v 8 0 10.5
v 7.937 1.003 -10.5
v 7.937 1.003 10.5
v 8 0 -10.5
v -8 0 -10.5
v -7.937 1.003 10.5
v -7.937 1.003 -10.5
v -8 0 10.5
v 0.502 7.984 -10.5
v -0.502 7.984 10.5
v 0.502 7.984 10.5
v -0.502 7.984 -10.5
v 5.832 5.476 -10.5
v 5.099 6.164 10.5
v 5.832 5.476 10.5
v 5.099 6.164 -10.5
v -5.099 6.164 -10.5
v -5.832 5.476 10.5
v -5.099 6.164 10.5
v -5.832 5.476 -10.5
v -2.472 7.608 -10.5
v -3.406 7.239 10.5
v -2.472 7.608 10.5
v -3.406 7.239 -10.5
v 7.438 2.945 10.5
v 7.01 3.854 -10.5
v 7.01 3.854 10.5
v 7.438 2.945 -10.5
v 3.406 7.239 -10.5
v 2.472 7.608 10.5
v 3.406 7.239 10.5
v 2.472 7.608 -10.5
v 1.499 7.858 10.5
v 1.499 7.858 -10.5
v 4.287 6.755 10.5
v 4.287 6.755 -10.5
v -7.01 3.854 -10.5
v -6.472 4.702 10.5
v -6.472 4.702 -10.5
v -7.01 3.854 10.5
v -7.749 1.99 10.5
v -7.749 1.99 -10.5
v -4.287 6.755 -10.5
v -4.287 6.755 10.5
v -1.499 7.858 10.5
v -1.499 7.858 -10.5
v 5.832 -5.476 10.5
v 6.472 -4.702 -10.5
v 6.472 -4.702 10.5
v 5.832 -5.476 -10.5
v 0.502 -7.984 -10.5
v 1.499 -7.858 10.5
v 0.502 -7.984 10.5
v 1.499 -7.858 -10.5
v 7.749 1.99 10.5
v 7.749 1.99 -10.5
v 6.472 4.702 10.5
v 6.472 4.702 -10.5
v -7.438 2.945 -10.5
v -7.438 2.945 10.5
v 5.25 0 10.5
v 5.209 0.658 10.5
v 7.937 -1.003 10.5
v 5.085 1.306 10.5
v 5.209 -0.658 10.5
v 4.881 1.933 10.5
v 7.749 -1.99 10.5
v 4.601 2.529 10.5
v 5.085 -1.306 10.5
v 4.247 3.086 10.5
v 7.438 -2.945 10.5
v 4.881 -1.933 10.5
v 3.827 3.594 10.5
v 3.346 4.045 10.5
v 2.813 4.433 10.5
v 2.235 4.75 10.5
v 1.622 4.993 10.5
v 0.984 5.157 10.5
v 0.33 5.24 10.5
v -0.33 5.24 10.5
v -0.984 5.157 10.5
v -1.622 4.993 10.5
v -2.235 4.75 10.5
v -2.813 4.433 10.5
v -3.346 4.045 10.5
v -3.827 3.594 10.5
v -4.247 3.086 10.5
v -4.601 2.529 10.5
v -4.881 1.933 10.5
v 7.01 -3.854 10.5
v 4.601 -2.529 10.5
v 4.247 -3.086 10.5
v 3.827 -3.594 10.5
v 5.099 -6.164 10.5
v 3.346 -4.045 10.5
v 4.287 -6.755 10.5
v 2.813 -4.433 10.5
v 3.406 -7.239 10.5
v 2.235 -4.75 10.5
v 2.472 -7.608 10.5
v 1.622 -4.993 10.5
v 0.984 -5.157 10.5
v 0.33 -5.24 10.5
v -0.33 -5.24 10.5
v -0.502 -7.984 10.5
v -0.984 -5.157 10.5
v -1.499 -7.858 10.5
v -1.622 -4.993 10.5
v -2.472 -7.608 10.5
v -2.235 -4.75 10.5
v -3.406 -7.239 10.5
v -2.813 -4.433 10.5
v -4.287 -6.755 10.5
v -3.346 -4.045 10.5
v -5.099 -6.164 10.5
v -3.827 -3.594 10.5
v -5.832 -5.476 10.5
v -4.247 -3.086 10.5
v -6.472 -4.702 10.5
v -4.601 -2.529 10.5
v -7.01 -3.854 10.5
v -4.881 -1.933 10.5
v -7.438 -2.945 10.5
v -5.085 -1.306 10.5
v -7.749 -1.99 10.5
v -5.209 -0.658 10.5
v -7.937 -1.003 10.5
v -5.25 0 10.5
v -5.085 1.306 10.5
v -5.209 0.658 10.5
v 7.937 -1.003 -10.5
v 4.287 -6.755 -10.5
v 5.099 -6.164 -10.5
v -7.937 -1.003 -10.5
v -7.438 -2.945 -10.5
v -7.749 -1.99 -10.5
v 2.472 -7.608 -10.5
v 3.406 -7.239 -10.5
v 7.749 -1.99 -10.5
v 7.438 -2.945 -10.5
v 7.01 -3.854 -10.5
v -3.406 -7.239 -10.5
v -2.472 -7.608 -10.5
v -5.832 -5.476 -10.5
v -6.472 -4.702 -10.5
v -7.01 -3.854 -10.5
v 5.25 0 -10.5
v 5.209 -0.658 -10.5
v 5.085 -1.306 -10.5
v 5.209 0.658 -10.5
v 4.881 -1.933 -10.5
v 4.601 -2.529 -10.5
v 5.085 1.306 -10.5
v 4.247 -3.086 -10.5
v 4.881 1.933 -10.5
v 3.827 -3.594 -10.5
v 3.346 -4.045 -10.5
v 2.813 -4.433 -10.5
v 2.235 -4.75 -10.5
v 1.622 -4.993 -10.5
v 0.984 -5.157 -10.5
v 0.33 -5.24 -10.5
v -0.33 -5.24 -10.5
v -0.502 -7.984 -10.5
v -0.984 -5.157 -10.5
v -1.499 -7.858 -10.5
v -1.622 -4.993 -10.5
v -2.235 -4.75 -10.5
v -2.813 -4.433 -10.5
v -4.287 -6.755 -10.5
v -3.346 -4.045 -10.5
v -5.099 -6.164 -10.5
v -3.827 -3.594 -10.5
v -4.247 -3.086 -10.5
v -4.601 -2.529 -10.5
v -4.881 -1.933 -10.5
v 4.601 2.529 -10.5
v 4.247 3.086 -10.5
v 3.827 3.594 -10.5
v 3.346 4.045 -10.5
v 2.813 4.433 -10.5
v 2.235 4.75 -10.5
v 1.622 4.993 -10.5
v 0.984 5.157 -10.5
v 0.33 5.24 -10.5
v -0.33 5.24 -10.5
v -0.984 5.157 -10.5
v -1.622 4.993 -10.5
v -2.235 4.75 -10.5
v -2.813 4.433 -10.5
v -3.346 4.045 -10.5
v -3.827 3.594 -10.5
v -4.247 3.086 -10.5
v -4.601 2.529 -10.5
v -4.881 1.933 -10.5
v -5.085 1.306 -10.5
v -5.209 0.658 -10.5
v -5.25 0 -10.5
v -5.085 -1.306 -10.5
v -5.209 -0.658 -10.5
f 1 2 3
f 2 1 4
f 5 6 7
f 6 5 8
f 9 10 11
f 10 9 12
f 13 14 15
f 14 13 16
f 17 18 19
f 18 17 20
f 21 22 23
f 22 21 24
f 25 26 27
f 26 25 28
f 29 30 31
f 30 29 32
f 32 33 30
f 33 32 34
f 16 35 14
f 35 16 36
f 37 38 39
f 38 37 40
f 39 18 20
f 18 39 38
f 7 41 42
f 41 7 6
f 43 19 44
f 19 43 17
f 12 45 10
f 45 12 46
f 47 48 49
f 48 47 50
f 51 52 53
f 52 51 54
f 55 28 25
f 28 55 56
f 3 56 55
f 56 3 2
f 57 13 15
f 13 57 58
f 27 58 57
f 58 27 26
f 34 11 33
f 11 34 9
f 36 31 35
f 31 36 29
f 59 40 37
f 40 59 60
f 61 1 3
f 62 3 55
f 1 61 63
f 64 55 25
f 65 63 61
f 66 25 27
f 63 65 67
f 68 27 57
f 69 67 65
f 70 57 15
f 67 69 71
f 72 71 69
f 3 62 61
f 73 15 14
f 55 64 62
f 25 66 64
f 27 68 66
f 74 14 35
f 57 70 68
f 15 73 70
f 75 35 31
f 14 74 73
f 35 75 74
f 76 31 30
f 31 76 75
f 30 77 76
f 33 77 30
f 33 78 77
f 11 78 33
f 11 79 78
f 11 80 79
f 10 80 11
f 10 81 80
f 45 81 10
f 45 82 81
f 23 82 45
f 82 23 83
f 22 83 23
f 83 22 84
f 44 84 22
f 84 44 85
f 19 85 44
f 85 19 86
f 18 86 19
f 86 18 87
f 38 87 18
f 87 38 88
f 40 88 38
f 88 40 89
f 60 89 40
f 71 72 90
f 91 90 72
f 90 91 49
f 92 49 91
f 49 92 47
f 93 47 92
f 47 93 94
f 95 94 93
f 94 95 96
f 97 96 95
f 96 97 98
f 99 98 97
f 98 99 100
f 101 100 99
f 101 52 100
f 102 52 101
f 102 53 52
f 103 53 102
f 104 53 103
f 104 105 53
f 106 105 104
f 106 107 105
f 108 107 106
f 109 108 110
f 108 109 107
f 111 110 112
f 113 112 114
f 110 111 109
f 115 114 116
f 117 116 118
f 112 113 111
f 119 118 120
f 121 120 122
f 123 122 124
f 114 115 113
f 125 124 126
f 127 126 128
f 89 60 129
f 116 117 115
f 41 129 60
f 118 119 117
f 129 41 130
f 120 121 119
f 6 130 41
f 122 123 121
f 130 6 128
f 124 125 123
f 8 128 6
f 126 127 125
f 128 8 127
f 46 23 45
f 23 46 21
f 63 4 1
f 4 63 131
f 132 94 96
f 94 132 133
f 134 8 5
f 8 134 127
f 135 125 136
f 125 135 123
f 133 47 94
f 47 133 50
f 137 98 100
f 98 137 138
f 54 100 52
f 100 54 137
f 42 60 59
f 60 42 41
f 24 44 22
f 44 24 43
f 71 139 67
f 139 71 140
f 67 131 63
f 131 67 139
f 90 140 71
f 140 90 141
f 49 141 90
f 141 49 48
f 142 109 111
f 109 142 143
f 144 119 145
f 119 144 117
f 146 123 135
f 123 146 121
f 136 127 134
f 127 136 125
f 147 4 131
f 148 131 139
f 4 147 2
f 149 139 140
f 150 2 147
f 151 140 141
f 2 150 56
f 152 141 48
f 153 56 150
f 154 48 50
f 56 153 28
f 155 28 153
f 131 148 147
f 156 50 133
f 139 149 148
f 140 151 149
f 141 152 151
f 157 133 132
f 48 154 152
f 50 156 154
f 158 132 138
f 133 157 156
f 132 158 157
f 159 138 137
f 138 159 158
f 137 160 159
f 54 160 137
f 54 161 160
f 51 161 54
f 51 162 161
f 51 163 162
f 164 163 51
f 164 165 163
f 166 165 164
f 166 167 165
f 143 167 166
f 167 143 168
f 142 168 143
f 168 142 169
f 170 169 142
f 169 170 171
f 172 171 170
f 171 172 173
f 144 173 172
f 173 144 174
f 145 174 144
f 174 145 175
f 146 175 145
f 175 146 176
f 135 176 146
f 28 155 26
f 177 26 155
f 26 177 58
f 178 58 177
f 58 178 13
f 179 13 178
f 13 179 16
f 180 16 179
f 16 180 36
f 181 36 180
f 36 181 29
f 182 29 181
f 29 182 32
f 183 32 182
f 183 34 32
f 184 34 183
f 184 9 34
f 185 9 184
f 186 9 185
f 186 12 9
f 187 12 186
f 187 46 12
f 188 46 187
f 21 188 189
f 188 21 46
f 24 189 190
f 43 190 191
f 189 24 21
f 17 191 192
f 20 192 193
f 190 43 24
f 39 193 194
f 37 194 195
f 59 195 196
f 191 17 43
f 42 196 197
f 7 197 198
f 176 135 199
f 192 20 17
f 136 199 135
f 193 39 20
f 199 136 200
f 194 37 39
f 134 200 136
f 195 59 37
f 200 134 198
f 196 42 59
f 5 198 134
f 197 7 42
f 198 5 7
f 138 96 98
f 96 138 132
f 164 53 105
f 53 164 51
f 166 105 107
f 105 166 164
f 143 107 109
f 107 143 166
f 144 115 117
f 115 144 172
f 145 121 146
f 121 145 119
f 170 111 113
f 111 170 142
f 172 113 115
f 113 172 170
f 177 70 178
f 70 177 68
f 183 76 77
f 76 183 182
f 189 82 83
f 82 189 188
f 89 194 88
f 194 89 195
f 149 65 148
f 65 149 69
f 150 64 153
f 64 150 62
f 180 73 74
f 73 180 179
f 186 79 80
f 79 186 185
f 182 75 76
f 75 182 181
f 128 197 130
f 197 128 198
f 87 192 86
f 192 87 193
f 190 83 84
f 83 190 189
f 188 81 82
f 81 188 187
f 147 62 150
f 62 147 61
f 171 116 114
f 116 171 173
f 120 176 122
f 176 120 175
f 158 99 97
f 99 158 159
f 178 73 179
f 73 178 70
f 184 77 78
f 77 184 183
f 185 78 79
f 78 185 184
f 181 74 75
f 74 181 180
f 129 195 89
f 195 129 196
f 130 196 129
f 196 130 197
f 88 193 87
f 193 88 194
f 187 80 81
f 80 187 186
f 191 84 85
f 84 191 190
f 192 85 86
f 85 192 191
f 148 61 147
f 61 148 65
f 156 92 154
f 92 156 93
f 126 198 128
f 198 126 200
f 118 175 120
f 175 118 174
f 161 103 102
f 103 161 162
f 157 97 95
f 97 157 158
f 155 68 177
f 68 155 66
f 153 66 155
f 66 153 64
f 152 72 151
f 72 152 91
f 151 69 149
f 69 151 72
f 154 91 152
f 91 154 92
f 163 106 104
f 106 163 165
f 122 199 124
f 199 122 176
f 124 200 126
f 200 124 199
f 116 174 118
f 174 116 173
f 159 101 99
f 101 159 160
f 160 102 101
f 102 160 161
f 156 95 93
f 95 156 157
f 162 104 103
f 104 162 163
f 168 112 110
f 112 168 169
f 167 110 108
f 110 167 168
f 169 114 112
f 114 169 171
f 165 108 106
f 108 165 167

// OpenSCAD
$fn = 50;


difference() {
	union() {
		translate(v = [0, 0, -10.5000000000]) {
			cylinder(h = 21, r = 8.0000000000);
		}
	}
	union() {
		translate(v = [0, 0, -100.0000000000]) {
			cylinder(h = 200, r = 5.2500000000);
		}
	}
}
